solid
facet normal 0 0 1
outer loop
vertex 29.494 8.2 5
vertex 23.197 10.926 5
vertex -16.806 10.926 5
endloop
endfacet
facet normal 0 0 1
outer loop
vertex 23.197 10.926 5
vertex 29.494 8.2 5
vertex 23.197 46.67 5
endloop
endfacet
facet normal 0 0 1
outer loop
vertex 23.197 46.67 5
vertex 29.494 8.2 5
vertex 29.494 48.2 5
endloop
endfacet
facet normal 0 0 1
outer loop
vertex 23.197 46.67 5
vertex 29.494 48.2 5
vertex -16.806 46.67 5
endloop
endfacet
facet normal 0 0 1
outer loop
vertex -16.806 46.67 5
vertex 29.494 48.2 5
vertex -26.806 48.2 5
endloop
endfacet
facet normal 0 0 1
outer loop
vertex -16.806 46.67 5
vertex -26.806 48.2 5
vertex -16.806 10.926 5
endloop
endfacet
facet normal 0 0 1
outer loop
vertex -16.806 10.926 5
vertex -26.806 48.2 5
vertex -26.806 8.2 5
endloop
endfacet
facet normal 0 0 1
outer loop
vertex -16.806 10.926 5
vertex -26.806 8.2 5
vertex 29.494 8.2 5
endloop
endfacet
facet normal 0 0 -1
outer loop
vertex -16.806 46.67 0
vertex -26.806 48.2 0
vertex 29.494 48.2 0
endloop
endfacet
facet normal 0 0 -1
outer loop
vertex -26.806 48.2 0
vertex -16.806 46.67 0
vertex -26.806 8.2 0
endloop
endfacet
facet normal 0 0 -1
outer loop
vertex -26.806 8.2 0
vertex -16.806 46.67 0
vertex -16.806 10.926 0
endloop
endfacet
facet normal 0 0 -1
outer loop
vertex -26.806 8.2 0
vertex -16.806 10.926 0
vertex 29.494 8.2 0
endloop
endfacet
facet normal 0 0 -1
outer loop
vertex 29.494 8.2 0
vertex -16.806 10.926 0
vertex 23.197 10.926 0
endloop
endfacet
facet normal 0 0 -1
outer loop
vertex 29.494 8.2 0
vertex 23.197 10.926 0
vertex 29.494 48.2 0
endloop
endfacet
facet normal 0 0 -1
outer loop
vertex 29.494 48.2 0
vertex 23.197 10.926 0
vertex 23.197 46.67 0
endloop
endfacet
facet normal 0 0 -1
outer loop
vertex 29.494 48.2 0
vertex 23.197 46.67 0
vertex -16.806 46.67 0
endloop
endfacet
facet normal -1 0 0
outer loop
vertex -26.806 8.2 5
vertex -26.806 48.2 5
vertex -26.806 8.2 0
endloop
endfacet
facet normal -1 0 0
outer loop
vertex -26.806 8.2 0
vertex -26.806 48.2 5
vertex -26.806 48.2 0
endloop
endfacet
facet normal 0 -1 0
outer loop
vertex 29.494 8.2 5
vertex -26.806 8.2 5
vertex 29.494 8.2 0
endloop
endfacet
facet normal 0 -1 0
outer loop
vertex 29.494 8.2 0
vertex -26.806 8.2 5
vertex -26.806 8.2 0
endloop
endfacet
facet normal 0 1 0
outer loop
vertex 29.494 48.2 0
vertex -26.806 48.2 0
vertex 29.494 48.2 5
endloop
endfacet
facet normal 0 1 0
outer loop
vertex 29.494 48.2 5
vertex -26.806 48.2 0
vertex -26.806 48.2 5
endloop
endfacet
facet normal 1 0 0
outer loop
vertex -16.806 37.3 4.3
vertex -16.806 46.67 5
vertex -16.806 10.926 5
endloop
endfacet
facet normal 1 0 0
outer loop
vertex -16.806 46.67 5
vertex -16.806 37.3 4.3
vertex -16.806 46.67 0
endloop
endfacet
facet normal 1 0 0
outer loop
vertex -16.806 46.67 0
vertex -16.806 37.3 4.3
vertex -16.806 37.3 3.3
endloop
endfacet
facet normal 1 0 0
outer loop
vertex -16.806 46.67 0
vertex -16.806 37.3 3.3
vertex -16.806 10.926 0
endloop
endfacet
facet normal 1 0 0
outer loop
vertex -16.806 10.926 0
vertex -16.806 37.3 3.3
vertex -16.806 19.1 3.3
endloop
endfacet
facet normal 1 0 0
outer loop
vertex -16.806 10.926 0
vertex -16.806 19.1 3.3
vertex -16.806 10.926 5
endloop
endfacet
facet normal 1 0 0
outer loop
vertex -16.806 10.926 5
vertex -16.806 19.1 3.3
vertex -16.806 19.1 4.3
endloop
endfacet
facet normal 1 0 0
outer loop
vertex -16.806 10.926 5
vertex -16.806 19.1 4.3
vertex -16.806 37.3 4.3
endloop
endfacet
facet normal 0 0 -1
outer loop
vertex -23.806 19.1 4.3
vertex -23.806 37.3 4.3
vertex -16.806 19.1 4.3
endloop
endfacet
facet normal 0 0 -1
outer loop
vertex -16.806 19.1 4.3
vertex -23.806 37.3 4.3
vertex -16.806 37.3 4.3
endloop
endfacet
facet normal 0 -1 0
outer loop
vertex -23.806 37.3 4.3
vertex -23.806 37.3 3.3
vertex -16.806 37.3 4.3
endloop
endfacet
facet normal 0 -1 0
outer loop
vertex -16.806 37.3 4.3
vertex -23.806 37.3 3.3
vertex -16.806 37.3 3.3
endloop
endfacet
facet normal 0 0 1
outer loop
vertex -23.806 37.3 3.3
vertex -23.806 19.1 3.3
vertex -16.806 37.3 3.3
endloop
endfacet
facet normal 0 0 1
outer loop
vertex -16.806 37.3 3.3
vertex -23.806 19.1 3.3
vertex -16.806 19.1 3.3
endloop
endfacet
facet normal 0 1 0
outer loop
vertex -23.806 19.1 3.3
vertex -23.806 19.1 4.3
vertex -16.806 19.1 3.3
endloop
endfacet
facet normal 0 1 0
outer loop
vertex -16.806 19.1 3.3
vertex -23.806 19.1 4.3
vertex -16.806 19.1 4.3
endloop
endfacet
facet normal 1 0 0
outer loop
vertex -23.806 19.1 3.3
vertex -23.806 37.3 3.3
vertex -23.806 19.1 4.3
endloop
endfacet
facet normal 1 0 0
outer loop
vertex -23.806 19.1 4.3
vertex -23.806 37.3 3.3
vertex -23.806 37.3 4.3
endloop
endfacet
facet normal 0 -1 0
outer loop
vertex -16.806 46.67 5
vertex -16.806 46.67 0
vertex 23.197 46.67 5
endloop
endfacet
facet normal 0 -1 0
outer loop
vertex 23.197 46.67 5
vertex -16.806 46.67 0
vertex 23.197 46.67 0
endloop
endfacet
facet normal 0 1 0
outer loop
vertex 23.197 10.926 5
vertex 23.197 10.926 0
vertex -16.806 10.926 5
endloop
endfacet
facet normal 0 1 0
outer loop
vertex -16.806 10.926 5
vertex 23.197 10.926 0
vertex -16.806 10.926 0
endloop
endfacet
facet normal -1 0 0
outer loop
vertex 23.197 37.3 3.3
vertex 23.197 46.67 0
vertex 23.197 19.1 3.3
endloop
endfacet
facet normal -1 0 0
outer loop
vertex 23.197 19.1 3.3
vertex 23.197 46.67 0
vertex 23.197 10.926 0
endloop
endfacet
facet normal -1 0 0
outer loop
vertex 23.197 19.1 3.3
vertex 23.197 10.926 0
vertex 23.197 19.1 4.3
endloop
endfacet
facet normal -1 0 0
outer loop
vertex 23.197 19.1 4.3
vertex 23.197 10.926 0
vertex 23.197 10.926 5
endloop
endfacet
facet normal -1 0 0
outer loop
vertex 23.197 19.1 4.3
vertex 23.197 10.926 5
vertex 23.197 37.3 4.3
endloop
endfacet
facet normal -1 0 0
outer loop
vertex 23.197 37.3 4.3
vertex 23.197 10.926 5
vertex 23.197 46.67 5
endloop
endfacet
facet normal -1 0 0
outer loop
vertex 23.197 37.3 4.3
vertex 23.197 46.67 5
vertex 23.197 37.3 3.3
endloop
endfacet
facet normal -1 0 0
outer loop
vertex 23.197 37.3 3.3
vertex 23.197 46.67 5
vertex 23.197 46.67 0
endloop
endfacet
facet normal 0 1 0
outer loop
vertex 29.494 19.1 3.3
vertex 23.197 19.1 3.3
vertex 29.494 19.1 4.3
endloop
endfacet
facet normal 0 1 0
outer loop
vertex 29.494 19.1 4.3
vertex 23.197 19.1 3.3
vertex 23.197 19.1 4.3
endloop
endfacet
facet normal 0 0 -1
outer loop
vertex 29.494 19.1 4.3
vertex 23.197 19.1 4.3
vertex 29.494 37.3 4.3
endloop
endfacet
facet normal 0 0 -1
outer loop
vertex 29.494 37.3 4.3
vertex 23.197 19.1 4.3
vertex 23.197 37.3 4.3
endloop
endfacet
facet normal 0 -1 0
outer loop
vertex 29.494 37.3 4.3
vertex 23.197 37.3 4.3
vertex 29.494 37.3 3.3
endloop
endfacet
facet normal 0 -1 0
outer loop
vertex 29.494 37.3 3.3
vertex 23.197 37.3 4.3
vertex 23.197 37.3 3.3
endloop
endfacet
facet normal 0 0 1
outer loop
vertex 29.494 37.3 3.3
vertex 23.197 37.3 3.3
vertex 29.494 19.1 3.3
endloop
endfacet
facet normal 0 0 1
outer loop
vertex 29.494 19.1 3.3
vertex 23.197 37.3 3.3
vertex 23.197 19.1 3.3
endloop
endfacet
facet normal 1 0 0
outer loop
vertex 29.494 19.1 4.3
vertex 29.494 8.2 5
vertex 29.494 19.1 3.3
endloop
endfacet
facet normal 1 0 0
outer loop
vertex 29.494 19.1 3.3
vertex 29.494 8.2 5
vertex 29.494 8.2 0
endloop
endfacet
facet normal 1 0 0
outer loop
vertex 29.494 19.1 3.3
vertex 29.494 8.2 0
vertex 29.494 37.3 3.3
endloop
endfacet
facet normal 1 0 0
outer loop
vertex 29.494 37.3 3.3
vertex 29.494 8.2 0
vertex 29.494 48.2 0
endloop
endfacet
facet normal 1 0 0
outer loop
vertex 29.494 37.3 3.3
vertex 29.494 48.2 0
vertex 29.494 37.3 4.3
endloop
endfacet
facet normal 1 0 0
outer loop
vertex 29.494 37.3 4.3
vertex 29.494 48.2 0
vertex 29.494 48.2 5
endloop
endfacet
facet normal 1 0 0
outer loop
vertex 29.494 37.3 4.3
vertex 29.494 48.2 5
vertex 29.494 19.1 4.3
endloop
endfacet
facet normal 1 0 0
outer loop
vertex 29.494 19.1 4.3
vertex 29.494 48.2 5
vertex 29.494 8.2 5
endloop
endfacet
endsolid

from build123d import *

# Parameters (mm, degrees)
SKETCH1_W               = 60
SKETCH1_H               = 40
BOSS_EXTRUDE1_DEPTH     = 5
CUT_EXTRUDE2_DEPTH      = 59.523499554
CUT_EXTRUDE2_DEPTH_BACK = 59.523499554
SKETCH2_W               = 1
SKETCH2_H               = 18.2
CUT_EXTRUDE3_DEPTH      = 7
SKETCH3_W               = 1
SKETCH3_H               = 18.2
CUT_EXTRUDE4_DEPTH      = 7
SKETCH6_W               = 40.00339764
SKETCH6_H               = 35.743622905
CUT_EXTRUDE5_DEPTH      = 7
SKETCH7_W               = 12.082118358
SKETCH7_H               = 49.934440021
CUT_EXTRUDE6_DEPTH      = 7


with BuildPart() as part:
    # Sketch1 → Boss-Extrude1 (new body)
    with BuildSketch(Plane.XY):
        with Locations((3.193565597, 28.20003109)):
            Rectangle(SKETCH1_W, SKETCH1_H)
    extrude(amount=BOSS_EXTRUDE1_DEPTH)

    # 3DSketch1 → Cut-Extrude2 (cut, two sides)
    with BuildSketch(Plane(origin=(-16.806434403, 18.20003109, 5), x_dir=(0.8944271909999159, 0.4472135954999582, 0), z_dir=(0, 0, 1))) as cut_extrude2_sk:
        Polygon((0, 0), (35.77708764, -17.88854382), (44.72135955, 0), (8.94427191, 17.88854382), align=None)
    extrude(amount=CUT_EXTRUDE2_DEPTH, mode=Mode.SUBTRACT)
    extrude(cut_extrude2_sk.sketch, amount=-CUT_EXTRUDE2_DEPTH_BACK, mode=Mode.SUBTRACT)

    # Sketch2 → Cut-Extrude3 (cut)
    with BuildSketch(Plane(origin=(-16.806434403, 0, 0), x_dir=(0, 0, -1), z_dir=(1, 0, 0))):
        with Locations((-3.8, 28.20003109)):
            Rectangle(SKETCH2_W, SKETCH2_H)
    extrude(amount=-CUT_EXTRUDE3_DEPTH, mode=Mode.SUBTRACT)

    # Sketch3 → Cut-Extrude4 (cut)
    with BuildSketch(Plane.ZY.offset(-23.193565597)):
        with Locations((3.8, 28.20003109)):
            Rectangle(SKETCH3_W, SKETCH3_H)
    extrude(amount=-CUT_EXTRUDE4_DEPTH, mode=Mode.SUBTRACT)

    # Sketch6 → Cut-Extrude5 (cut)
    with BuildSketch(Plane.XY.offset(5)):
        with Locations((3.195264417, 28.798257348)):
            Rectangle(SKETCH6_W, SKETCH6_H)
    extrude(amount=-CUT_EXTRUDE5_DEPTH, mode=Mode.SUBTRACT)

    # Sketch7 → Cut-Extrude6 (cut)
    with BuildSketch(Plane.XY.offset(5)):
        with Locations((35.534916951, 27.405939639)):
            Rectangle(SKETCH7_W, SKETCH7_H)
    extrude(amount=-CUT_EXTRUDE6_DEPTH, mode=Mode.SUBTRACT)


solid = part.part
